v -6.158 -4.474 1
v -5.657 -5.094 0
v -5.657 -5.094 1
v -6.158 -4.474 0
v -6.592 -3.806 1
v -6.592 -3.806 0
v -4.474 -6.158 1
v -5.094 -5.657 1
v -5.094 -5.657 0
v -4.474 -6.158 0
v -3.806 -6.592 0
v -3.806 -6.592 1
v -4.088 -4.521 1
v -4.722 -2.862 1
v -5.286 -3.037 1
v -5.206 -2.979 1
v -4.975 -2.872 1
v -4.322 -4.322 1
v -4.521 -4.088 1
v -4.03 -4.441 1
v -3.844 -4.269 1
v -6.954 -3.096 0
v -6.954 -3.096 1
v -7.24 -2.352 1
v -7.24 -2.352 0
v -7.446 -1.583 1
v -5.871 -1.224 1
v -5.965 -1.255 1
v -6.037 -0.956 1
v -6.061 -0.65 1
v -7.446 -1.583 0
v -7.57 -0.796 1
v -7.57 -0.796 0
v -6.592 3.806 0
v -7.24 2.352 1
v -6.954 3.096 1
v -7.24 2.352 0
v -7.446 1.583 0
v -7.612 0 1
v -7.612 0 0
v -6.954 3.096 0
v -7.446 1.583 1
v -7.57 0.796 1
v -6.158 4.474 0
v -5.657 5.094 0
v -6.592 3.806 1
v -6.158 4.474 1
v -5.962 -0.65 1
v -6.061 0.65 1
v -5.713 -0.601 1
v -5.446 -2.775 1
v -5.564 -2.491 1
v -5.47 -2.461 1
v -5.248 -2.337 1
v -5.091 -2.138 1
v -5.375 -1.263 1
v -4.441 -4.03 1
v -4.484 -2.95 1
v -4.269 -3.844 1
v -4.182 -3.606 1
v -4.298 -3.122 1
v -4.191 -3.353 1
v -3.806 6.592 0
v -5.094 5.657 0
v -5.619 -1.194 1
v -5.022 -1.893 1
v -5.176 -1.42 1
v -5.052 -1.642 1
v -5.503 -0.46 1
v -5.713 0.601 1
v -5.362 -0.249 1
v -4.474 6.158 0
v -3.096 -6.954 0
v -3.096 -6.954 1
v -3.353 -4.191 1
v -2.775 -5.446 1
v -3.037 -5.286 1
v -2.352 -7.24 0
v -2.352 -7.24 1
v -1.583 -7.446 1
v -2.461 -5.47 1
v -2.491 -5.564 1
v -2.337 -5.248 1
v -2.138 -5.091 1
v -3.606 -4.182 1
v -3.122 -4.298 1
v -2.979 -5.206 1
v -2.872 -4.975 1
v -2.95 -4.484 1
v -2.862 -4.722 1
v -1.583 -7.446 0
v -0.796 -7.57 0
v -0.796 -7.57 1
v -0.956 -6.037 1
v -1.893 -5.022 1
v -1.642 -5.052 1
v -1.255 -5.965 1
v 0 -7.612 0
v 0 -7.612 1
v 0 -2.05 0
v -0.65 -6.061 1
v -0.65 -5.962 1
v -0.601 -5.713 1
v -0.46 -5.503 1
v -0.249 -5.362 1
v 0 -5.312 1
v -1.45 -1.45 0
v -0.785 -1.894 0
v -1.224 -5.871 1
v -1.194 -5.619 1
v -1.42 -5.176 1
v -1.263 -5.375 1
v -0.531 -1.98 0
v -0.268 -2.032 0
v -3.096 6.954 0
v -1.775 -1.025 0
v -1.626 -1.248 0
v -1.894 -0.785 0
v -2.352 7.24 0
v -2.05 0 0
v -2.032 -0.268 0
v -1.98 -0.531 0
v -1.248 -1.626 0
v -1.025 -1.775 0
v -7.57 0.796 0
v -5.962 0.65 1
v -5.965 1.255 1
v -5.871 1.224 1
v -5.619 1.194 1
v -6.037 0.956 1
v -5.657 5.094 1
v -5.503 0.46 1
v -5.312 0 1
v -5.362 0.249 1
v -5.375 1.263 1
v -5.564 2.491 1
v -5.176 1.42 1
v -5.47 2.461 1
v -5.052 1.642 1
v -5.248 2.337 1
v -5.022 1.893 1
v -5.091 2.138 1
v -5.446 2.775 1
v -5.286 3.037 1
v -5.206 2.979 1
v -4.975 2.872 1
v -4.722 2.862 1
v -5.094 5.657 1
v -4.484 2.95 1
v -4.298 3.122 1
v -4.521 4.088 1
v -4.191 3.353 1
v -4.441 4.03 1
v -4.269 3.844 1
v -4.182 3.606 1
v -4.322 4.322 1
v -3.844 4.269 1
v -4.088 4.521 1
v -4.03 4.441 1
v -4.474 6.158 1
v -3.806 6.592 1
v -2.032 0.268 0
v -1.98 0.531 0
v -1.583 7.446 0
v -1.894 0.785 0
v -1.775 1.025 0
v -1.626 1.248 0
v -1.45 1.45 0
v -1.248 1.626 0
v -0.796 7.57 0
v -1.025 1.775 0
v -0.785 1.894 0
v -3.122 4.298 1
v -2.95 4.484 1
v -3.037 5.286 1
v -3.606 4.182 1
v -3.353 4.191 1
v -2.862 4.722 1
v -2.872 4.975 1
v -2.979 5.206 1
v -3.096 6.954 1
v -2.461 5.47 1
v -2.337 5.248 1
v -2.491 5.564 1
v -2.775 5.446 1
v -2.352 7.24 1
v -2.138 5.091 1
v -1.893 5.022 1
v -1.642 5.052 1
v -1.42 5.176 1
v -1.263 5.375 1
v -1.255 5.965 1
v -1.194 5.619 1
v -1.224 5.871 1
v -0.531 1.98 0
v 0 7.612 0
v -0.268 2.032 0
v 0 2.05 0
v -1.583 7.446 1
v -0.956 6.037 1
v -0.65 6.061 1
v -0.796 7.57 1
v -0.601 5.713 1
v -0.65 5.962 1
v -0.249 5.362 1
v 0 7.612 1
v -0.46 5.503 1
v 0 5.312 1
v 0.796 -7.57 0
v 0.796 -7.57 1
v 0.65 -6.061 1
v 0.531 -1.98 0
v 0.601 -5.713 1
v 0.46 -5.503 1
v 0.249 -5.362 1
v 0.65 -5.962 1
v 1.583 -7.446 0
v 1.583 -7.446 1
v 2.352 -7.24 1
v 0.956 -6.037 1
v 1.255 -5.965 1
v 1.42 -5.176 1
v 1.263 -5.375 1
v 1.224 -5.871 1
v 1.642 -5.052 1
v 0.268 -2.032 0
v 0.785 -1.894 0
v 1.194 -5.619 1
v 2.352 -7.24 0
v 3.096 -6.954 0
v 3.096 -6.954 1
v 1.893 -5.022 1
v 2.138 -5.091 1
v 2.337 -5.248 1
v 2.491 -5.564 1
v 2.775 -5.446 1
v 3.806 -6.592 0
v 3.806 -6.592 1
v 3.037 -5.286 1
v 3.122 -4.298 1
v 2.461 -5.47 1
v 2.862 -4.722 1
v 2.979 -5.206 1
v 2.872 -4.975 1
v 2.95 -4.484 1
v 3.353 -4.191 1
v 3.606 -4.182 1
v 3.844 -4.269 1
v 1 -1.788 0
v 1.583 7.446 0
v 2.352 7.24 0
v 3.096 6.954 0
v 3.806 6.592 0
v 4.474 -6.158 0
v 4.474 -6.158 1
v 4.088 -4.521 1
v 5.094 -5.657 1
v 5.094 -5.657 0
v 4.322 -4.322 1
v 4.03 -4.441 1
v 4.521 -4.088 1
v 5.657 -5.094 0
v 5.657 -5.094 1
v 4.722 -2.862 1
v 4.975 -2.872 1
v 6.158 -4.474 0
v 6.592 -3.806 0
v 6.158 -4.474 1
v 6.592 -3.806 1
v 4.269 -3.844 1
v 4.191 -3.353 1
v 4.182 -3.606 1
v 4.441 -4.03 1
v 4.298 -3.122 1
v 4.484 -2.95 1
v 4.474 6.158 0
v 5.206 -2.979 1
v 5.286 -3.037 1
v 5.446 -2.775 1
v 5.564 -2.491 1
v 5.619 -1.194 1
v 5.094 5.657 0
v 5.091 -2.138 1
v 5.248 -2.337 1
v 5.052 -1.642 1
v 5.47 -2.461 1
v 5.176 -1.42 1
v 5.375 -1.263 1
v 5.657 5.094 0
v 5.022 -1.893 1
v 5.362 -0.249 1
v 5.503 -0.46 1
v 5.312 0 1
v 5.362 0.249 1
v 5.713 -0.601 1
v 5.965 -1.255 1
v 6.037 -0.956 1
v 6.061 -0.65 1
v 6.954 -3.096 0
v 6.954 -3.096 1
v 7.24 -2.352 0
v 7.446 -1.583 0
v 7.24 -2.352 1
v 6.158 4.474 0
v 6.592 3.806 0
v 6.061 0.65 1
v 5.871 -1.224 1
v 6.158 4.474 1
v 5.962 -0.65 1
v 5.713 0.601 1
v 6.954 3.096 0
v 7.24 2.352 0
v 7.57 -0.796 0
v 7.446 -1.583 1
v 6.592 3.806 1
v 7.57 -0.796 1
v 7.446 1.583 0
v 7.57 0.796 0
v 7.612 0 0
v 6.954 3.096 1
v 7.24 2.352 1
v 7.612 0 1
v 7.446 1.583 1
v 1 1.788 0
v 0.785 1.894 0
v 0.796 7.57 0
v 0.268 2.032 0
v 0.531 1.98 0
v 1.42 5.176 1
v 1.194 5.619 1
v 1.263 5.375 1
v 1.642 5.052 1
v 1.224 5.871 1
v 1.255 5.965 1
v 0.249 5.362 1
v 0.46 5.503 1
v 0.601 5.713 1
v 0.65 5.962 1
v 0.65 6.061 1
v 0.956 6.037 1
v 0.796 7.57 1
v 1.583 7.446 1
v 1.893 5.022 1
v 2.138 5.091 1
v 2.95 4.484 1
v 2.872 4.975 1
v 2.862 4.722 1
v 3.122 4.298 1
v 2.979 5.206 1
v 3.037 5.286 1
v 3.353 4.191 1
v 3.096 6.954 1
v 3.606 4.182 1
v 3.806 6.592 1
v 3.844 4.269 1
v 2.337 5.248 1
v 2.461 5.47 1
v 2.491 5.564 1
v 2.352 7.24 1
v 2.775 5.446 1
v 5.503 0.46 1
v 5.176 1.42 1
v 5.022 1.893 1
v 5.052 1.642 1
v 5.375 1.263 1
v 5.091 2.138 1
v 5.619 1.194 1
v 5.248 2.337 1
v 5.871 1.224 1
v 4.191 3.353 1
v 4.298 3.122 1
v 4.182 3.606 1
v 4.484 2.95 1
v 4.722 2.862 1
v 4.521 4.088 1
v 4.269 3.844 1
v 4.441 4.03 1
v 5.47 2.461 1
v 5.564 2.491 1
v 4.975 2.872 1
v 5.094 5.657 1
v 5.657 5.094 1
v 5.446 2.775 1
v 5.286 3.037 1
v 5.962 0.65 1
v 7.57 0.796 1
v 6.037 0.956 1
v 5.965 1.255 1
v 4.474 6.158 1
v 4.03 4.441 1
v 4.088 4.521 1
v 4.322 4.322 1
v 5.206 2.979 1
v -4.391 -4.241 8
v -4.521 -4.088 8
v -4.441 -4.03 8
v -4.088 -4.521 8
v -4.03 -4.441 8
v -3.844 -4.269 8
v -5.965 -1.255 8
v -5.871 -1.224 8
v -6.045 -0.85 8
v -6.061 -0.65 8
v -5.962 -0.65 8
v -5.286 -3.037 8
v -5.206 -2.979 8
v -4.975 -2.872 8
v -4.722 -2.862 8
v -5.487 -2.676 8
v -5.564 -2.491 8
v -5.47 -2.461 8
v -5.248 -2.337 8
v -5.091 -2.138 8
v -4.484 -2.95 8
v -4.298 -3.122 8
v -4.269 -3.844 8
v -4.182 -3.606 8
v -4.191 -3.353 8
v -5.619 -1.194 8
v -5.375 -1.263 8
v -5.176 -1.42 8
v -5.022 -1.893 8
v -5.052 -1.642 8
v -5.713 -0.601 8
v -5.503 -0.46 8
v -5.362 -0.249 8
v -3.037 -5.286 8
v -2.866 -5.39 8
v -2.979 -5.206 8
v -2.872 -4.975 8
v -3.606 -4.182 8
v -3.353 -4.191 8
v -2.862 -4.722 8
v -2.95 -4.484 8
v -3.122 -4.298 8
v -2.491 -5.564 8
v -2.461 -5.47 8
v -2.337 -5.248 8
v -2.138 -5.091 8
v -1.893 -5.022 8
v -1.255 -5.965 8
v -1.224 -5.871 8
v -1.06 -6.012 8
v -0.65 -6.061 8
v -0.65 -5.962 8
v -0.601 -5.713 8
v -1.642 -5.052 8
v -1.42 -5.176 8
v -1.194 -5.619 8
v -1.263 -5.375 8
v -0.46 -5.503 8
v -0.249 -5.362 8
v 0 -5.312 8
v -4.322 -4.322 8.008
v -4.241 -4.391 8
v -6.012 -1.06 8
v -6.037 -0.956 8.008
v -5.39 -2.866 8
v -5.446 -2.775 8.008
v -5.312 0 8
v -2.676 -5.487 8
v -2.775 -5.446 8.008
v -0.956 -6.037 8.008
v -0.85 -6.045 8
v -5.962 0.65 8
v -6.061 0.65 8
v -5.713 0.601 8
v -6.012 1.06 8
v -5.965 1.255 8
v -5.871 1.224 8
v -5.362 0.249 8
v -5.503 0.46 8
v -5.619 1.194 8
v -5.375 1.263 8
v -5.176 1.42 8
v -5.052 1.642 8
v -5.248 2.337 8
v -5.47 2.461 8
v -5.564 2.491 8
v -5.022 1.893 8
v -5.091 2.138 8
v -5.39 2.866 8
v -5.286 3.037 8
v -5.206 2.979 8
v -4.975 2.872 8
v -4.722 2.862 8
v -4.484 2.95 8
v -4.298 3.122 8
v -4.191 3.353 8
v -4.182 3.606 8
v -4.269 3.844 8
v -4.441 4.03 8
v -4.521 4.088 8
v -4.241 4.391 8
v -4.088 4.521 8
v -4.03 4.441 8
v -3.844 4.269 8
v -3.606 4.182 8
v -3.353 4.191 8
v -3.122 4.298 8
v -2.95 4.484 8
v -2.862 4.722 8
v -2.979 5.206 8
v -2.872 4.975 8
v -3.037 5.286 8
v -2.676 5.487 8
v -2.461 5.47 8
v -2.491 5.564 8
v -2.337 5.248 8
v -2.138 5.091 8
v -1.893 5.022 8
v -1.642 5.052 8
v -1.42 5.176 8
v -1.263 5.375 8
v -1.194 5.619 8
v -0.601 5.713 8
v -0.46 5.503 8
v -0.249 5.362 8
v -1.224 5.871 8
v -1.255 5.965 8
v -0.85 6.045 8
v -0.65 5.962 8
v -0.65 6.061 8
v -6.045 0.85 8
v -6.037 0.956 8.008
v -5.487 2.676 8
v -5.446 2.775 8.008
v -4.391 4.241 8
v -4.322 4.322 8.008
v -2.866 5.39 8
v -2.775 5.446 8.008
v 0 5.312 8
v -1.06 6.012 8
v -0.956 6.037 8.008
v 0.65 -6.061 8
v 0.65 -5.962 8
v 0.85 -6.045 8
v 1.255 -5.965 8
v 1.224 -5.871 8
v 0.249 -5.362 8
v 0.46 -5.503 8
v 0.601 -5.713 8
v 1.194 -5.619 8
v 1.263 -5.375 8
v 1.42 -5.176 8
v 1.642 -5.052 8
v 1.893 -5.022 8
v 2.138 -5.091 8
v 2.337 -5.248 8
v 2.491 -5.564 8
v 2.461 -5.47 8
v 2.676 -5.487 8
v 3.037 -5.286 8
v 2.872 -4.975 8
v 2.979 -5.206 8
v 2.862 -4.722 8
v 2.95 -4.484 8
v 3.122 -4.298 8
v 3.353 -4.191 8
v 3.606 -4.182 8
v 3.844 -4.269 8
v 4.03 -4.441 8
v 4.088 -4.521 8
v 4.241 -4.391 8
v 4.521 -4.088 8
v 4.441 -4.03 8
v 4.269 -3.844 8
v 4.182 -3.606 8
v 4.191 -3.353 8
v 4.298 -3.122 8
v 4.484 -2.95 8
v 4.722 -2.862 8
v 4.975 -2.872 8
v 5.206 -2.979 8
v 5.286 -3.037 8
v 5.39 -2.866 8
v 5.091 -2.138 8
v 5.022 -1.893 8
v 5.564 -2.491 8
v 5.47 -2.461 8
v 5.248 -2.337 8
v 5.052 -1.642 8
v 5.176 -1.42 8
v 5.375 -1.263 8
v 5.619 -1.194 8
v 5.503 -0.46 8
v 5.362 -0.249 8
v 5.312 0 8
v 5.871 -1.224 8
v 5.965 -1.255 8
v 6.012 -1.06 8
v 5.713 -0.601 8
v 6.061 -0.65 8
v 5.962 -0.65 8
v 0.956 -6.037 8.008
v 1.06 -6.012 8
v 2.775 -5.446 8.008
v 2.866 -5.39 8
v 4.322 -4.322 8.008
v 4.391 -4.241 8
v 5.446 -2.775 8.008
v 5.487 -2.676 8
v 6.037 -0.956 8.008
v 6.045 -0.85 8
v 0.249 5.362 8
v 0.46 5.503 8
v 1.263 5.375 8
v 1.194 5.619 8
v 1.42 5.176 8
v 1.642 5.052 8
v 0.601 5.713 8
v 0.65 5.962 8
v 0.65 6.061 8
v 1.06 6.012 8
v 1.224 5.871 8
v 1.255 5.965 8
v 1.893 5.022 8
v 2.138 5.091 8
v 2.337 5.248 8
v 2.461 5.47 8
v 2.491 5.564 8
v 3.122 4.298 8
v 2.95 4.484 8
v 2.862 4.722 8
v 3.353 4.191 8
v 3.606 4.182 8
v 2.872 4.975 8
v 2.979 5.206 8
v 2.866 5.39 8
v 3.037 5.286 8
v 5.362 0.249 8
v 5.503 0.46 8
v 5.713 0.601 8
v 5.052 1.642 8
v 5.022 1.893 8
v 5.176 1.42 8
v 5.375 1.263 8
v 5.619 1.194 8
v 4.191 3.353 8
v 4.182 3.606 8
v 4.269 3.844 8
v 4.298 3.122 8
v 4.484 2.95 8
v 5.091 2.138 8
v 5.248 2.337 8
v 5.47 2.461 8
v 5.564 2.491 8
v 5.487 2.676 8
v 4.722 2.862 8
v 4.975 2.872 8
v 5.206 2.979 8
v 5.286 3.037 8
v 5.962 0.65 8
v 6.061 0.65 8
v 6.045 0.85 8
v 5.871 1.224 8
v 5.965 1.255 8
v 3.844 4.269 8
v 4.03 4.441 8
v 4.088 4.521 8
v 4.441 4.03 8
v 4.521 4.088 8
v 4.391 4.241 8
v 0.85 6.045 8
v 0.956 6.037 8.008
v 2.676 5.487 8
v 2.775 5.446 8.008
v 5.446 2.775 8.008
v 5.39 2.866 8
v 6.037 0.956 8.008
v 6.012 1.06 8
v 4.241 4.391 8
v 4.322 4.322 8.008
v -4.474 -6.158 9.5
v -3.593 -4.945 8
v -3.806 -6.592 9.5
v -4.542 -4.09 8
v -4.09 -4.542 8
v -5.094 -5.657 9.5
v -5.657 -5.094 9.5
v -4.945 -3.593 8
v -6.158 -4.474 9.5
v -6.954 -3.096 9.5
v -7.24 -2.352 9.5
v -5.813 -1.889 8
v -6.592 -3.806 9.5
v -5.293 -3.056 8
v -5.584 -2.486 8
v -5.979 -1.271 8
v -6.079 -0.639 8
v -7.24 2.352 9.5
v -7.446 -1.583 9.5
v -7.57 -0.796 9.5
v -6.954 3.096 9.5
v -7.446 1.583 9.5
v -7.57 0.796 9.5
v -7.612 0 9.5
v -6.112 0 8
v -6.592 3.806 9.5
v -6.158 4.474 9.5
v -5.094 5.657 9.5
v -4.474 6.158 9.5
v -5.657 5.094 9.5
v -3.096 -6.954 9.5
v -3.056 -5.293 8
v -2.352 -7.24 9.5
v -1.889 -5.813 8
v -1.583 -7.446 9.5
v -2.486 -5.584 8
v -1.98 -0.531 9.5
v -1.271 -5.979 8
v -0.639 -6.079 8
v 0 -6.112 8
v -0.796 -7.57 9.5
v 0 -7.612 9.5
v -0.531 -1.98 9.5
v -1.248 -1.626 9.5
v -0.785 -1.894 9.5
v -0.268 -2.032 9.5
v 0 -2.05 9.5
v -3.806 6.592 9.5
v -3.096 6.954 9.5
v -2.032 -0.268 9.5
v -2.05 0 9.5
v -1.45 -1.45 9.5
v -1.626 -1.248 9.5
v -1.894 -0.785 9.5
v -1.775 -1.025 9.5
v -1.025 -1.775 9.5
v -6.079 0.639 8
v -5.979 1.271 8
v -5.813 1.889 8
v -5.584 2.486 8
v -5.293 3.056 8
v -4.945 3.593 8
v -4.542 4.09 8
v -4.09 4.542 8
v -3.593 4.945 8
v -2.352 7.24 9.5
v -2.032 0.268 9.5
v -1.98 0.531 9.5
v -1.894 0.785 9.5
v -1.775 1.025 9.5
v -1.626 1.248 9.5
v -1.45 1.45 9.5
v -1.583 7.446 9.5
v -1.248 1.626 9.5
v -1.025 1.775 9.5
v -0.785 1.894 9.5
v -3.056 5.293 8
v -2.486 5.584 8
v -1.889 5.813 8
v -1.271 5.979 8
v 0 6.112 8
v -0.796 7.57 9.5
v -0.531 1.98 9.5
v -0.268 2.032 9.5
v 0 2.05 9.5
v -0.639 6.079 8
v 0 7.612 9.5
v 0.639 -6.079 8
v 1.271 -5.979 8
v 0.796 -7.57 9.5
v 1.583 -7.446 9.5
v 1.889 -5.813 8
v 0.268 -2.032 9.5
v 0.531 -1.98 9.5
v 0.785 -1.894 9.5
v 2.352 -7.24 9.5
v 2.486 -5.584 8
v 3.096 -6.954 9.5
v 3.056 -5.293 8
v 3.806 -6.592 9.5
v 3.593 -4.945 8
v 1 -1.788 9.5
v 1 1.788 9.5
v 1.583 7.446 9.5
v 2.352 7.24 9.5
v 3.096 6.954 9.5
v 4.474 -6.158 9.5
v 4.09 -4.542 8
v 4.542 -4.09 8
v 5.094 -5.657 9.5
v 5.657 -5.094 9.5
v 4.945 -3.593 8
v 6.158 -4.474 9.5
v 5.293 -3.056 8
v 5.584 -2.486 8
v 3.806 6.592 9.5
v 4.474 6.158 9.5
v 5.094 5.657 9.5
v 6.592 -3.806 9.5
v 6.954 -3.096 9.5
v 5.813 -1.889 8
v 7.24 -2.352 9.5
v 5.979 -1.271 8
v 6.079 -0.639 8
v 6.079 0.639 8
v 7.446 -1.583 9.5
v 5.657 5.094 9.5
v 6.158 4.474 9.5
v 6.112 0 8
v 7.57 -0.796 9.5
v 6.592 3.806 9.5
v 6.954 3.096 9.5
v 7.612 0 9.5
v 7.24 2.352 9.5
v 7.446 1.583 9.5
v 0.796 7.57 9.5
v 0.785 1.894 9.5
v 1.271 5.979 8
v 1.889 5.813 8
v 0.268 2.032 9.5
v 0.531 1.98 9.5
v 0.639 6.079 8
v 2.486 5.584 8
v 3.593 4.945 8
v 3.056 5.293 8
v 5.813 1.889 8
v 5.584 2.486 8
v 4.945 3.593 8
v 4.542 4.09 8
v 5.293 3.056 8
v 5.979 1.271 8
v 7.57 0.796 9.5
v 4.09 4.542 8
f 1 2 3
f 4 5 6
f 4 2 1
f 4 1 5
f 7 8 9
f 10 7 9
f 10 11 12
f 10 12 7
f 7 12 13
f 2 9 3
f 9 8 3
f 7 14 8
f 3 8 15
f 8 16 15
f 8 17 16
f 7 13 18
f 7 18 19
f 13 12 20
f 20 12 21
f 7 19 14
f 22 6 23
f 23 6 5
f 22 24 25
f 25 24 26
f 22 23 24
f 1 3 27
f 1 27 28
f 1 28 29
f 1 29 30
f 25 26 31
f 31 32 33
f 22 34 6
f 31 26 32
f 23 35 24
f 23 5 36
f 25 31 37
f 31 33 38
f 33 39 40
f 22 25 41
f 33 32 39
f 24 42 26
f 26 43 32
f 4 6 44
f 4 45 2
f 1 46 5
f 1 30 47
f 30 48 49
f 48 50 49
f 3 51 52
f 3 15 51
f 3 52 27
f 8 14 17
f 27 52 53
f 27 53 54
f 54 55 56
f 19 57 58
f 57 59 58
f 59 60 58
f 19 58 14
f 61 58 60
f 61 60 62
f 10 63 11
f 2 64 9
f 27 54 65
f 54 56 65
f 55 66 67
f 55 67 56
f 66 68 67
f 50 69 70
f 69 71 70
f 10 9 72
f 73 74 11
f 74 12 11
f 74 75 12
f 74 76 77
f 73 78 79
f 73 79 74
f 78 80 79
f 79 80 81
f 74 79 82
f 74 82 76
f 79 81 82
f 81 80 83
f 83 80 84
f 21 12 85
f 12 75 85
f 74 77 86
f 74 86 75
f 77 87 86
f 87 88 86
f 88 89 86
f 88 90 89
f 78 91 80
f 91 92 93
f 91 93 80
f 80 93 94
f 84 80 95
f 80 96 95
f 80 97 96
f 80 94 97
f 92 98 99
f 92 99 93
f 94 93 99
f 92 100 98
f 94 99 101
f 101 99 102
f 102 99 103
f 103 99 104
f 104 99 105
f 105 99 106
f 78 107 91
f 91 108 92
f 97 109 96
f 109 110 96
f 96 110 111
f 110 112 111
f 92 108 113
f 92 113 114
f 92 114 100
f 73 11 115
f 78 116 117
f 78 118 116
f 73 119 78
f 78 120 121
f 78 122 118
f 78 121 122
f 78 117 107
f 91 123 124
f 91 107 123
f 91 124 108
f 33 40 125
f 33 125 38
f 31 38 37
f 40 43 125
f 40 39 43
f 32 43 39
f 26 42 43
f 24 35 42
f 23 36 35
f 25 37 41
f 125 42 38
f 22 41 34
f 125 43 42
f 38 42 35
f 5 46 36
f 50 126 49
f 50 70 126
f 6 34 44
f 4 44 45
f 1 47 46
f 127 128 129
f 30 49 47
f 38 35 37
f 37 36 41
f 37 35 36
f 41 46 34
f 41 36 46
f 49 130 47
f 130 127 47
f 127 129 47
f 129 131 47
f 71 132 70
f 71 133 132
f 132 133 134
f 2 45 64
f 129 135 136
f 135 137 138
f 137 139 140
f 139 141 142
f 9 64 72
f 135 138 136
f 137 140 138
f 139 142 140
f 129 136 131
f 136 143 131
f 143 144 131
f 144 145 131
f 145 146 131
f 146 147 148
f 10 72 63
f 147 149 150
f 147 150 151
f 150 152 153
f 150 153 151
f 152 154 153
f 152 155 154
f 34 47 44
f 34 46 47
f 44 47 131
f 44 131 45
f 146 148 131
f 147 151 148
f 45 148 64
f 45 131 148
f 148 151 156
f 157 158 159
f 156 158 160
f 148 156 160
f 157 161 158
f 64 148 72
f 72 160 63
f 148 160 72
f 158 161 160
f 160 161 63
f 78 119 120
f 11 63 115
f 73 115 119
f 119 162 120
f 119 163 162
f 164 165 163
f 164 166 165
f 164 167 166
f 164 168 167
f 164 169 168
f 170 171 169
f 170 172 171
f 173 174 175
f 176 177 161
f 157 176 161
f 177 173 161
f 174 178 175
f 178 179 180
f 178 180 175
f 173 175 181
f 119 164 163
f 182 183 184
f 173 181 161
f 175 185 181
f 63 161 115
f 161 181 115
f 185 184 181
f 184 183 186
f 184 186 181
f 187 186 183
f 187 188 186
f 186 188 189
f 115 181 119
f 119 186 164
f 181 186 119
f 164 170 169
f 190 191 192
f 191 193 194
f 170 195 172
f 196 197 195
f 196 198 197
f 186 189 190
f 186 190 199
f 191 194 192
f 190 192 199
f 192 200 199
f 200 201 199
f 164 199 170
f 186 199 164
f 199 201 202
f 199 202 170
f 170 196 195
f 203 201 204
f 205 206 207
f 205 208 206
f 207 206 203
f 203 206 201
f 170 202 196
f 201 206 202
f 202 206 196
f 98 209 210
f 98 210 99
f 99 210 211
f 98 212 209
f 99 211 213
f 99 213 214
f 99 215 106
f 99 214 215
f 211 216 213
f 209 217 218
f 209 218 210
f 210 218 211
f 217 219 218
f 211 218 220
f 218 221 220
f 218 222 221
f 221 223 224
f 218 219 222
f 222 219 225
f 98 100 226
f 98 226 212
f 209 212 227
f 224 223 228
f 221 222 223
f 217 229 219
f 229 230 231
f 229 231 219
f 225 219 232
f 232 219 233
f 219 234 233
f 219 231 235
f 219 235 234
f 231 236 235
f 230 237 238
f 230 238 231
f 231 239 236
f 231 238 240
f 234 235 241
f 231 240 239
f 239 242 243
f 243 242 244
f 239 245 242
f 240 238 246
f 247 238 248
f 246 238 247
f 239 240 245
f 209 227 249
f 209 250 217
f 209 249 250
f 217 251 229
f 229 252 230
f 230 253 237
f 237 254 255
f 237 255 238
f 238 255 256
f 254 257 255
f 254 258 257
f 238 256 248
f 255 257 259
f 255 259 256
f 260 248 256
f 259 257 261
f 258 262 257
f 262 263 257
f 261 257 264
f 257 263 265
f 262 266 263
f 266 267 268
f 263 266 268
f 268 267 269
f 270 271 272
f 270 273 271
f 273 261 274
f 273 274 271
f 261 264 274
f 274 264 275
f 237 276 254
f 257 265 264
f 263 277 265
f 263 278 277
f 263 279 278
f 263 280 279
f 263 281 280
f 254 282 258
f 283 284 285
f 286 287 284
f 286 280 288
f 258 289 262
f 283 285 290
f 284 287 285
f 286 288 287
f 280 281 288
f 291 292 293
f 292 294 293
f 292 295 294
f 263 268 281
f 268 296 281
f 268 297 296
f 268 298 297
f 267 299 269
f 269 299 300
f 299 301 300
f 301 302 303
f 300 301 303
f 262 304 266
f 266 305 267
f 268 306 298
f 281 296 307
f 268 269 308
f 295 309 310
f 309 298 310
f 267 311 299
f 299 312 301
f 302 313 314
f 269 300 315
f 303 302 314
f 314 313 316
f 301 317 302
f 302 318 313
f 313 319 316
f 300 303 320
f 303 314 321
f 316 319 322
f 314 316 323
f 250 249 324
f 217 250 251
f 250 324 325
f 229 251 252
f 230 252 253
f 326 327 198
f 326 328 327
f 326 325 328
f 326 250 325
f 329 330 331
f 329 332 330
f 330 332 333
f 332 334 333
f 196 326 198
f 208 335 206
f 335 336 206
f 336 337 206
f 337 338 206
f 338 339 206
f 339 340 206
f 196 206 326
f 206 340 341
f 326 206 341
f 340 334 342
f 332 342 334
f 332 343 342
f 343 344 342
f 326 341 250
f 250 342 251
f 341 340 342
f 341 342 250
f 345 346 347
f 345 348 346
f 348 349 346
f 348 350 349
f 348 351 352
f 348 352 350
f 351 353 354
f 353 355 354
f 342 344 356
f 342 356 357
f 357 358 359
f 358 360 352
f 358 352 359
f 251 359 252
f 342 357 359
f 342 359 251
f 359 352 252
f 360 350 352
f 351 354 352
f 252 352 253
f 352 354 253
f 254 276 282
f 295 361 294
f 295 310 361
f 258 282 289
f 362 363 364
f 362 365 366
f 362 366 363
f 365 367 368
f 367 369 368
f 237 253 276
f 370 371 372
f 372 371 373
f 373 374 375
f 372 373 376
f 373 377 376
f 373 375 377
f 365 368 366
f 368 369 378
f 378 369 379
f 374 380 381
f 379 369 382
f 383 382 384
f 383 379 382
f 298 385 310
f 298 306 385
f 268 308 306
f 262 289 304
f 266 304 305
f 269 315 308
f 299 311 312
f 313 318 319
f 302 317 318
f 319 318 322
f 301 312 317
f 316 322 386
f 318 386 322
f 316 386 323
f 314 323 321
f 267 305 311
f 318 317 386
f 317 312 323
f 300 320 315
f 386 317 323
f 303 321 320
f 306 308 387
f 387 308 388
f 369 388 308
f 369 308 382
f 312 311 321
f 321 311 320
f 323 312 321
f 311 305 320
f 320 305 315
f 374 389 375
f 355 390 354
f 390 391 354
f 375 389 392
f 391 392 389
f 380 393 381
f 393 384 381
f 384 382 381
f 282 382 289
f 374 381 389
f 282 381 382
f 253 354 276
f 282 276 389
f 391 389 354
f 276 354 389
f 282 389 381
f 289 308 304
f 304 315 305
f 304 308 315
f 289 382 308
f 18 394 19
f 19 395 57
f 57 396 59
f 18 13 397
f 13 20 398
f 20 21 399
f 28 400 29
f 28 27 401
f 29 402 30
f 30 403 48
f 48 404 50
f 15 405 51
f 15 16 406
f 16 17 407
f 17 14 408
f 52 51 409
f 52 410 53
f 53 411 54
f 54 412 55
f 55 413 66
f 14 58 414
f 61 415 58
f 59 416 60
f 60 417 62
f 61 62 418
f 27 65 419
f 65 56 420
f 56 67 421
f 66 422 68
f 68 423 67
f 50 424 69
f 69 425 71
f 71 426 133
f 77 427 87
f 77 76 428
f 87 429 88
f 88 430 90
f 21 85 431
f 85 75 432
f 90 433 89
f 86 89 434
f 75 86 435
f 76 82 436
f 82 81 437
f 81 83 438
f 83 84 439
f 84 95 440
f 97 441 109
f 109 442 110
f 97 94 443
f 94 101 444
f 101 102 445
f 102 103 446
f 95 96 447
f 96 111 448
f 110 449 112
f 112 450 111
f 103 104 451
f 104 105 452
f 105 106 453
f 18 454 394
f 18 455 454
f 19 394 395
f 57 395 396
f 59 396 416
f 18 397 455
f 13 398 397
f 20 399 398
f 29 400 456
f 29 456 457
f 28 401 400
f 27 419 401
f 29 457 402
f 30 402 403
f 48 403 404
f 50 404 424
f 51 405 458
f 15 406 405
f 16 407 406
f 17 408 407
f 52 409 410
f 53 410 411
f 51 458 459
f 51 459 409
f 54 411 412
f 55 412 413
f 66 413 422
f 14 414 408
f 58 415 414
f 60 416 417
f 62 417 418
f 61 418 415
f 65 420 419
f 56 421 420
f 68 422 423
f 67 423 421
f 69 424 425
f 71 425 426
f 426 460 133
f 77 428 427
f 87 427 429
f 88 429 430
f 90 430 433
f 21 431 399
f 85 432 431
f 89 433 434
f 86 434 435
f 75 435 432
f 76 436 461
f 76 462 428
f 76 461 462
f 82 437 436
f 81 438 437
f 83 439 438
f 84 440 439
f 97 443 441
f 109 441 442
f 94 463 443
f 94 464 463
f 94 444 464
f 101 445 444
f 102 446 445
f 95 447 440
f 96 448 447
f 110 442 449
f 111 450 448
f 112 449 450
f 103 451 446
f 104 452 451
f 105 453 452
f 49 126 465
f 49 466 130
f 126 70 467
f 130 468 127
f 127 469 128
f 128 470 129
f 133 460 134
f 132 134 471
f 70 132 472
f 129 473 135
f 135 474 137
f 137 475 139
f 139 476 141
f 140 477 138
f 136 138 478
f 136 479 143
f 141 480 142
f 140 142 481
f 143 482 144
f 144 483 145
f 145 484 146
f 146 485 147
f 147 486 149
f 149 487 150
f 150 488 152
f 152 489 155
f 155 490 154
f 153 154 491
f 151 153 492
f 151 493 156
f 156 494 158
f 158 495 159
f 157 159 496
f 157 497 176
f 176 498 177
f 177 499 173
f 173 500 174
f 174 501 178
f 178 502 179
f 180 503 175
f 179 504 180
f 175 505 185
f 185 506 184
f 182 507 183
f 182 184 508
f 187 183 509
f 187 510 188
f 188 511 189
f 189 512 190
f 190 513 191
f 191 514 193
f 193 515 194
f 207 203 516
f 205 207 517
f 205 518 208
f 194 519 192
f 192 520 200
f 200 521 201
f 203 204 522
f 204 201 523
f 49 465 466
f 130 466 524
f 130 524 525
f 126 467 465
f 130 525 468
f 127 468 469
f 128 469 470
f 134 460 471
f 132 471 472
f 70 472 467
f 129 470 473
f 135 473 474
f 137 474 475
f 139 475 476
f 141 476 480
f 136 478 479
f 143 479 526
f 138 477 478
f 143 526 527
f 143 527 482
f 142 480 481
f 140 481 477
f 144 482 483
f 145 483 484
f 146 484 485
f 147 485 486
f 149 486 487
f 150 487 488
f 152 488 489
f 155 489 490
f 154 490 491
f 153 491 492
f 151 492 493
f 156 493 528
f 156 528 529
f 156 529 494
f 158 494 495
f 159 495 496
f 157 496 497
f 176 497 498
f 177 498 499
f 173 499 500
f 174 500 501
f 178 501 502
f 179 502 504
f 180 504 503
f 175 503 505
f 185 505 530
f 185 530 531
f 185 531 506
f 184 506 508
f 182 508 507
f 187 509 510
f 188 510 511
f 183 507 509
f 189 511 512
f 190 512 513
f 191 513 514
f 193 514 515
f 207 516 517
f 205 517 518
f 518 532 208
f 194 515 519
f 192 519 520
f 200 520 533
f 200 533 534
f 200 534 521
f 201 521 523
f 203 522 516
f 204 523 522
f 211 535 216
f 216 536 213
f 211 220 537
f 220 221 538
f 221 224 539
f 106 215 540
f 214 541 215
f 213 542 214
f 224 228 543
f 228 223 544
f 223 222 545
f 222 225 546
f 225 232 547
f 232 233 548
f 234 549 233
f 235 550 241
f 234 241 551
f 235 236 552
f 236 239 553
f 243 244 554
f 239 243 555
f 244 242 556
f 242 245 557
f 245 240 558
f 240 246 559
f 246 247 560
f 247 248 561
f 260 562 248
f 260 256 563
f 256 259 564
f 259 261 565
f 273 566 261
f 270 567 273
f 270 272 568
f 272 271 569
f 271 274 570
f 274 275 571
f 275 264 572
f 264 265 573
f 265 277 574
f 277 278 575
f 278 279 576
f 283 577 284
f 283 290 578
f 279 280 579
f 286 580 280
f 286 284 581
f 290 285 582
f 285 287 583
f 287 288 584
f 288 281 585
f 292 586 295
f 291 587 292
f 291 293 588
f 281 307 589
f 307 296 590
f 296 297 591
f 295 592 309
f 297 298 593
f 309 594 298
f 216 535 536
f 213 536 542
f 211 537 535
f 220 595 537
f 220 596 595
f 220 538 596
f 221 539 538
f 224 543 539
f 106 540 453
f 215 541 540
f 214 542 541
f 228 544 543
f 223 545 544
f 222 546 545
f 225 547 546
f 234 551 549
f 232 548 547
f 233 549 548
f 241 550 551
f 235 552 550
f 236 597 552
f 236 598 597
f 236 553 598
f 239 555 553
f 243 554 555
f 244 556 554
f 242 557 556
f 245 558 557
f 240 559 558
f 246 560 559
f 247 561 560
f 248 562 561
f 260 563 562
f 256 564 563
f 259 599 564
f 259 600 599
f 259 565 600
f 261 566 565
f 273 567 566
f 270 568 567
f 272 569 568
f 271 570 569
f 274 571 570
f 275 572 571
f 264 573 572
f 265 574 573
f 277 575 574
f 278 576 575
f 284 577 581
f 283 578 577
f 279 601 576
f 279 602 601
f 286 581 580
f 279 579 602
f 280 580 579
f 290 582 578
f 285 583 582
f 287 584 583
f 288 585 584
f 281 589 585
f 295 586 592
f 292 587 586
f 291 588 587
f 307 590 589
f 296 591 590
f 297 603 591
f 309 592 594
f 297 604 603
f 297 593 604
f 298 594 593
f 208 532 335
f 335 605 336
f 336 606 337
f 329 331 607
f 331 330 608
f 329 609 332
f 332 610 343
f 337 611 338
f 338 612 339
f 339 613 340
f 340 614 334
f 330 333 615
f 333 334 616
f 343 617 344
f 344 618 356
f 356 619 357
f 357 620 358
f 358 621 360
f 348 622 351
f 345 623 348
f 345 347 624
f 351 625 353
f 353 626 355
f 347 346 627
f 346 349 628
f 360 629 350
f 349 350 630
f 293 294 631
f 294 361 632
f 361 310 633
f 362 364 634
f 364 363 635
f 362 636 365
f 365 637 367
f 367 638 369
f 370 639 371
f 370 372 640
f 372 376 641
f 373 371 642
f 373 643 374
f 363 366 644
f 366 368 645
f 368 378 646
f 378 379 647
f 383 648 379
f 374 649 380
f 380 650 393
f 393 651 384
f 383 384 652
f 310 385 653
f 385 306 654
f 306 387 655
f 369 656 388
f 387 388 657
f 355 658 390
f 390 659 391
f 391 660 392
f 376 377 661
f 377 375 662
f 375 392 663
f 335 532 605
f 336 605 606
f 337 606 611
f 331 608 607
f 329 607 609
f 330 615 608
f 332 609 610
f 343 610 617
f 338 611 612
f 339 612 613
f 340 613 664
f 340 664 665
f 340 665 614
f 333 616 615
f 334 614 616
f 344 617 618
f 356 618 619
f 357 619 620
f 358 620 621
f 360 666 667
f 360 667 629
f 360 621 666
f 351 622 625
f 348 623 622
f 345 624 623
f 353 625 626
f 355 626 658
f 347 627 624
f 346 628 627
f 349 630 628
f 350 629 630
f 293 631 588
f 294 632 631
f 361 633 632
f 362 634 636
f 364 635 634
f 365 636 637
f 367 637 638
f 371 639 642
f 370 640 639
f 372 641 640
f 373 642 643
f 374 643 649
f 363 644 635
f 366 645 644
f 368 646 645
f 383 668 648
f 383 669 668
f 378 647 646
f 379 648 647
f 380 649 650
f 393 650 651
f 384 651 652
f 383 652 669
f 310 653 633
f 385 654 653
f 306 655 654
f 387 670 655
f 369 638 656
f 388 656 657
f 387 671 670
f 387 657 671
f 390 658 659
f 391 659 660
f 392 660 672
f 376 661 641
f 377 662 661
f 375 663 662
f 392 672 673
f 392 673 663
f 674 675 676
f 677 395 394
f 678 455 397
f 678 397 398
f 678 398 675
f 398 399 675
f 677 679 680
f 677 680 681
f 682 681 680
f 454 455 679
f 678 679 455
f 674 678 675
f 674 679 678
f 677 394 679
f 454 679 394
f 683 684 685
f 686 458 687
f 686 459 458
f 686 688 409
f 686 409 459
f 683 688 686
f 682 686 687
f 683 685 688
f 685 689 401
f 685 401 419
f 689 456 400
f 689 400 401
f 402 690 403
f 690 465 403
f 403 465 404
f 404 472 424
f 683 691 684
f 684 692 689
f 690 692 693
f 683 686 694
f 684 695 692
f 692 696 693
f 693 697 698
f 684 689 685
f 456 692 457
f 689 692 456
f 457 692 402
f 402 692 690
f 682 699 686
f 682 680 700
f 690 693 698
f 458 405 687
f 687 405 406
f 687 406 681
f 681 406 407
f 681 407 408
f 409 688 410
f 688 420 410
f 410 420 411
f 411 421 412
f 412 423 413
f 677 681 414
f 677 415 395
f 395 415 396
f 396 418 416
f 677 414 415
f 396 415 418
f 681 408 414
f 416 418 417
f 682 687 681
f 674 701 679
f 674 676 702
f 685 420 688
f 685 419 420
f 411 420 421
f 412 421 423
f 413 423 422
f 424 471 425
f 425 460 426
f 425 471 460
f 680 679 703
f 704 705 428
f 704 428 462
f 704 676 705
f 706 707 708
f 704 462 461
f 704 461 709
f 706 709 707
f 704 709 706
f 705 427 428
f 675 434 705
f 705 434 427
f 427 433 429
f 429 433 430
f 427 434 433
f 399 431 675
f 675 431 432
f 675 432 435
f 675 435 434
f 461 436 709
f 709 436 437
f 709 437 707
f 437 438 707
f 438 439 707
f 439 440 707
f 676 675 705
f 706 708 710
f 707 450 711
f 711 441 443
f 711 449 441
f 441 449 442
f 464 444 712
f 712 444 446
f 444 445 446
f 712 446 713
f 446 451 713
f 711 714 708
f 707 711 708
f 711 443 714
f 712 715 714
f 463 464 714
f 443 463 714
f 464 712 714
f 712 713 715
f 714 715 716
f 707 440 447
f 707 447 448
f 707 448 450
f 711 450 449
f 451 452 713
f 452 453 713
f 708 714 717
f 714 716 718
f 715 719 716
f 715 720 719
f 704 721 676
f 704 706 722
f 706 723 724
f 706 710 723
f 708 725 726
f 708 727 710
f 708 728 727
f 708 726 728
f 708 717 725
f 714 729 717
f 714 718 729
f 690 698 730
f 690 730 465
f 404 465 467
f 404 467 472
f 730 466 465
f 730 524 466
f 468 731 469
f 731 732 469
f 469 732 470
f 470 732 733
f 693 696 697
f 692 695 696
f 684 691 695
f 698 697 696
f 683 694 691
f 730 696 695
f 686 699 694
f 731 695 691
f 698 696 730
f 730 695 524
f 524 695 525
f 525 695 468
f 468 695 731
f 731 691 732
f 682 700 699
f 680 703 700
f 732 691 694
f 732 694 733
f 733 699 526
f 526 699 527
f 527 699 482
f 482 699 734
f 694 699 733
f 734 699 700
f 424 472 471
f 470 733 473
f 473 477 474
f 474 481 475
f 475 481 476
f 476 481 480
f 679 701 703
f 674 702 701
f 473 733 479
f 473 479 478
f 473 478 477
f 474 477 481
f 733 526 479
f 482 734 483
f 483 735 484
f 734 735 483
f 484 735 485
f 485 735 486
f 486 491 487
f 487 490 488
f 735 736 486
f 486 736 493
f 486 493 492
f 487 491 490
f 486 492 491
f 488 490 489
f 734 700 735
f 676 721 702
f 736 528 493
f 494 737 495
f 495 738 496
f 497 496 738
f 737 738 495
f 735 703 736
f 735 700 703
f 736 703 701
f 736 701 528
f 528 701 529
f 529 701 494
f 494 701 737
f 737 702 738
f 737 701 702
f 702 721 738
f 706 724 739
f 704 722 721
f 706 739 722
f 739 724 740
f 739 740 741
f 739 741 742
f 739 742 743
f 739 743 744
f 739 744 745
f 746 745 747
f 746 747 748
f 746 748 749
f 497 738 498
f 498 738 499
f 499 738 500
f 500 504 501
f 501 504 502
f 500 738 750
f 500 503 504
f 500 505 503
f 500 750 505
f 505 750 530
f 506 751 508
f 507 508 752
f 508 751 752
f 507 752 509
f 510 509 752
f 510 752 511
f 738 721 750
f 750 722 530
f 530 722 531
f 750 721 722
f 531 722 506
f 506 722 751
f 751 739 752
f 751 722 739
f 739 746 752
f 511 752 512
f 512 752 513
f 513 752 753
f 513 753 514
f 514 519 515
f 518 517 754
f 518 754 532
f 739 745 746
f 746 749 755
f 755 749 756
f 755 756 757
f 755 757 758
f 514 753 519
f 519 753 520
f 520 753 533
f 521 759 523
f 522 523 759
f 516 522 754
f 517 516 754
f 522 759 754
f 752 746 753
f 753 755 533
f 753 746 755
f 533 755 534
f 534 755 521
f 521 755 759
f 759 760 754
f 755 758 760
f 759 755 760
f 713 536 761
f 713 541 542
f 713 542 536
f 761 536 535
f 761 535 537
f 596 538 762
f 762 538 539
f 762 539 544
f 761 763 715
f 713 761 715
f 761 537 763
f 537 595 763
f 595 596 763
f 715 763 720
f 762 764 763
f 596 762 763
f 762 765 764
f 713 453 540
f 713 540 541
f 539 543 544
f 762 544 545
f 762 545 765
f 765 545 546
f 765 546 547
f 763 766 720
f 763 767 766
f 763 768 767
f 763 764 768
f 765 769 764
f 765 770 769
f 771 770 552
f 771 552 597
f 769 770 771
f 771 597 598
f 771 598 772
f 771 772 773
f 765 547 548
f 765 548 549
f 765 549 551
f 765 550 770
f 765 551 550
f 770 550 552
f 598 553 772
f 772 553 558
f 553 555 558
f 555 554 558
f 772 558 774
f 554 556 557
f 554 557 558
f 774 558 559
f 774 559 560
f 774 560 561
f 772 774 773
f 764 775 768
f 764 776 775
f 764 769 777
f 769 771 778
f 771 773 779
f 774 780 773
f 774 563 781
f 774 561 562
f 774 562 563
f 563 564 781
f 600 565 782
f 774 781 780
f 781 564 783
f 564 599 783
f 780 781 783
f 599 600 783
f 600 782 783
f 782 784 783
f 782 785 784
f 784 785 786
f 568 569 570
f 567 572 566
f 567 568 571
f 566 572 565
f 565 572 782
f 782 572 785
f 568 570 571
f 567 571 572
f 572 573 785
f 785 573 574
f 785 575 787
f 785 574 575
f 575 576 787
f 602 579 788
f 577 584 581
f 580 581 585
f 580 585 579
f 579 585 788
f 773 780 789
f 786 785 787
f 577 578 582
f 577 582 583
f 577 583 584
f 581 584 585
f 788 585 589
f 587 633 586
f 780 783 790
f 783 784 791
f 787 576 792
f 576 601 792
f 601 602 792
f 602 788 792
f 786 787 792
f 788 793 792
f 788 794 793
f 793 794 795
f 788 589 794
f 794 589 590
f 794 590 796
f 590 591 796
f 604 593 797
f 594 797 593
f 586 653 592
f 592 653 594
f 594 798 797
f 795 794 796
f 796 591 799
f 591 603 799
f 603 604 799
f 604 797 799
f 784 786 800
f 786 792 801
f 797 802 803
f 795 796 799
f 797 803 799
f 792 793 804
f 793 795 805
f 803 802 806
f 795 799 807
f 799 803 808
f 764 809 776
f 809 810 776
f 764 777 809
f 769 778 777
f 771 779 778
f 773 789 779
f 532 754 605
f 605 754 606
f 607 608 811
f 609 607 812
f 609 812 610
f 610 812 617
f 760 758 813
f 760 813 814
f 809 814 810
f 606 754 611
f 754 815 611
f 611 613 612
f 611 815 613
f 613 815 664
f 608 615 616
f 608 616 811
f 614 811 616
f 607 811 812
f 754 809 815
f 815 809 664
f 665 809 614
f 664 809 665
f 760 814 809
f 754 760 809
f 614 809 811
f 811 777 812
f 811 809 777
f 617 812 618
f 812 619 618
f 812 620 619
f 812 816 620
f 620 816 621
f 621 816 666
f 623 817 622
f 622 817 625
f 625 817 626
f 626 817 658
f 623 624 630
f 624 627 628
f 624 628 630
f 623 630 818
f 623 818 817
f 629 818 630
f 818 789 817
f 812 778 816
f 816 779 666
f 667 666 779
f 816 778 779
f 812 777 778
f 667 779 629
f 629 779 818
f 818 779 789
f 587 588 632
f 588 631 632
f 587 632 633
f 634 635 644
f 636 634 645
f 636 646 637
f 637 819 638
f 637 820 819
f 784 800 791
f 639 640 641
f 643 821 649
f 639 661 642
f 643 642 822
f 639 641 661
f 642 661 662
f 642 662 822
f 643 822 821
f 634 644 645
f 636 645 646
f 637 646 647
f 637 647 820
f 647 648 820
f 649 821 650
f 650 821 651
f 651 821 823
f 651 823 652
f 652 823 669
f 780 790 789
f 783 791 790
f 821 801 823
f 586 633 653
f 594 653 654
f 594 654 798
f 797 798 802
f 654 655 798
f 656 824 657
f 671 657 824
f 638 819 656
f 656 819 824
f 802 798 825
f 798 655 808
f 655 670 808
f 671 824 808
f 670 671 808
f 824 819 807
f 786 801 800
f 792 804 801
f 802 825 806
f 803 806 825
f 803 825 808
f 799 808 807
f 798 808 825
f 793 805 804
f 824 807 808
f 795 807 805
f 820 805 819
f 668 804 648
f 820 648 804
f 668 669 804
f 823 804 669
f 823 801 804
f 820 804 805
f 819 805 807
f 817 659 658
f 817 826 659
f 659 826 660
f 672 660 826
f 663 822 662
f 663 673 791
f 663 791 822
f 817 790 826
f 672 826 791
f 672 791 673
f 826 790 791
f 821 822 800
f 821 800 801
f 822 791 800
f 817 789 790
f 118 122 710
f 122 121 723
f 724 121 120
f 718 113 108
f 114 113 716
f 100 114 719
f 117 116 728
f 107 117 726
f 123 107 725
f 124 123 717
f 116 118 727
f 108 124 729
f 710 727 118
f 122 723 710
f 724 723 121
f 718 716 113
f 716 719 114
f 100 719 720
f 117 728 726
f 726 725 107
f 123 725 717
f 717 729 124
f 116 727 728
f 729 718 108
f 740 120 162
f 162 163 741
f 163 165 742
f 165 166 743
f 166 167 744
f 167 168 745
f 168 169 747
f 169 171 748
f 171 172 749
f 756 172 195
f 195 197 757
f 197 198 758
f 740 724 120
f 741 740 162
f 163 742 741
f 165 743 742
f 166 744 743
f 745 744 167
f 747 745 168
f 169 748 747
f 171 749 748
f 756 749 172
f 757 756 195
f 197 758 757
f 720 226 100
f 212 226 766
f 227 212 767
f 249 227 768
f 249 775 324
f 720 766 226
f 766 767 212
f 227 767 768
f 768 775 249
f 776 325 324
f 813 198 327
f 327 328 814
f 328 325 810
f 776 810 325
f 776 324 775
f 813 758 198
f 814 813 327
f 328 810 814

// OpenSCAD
// file: ../lib/hardware.scad
// ============================================================================
// lib/hardware.scad — inserts, bearing pockets, motor patterns, race groove, helpers.
// ============================================================================
include <../config.scad>
eps = 0.01;

// Rounded box from z=0 up, corner radius r in XY.
module rbox(size, r = 3) {
    linear_extrude(height = size[2]) offset(r = r) offset(delta = -r) square([size[0], size[1]]);
}
// Cylinder along +X from x0 to x1 / along +Y / along +Z
module xcyl(d, x0, x1) { translate([x0, 0, 0]) rotate([0, 90, 0]) cylinder(d = d, h = x1 - x0); }
module ycyl(d, y0, y1) { translate([0, y0, 0]) rotate([-90, 0, 0]) cylinder(d = d, h = y1 - y0); }
module zcyl(d, z0, z1) { translate([0, 0, z0]) cylinder(d = d, h = z1 - z0); }

// Heat-set insert hole, axis -Z from z=0 (the face). size: "m3" | "m4" | "m5".
module insert_hole(size = "m3", extra = insert_extra) {
    d = size == "m3" ? m3_insert_d : size == "m4" ? m4_insert_d : m5_insert_d;
    h = size == "m3" ? m3_insert_h : size == "m4" ? m4_insert_h : m5_insert_h;
    pilot = size == "m3" ? 2.6 : size == "m4" ? 3.4 : 4.4;
    translate([0, 0, -h]) cylinder(d = d, h = h + eps);
    translate([0, 0, -h - extra]) cylinder(d = pilot, h = extra + eps);
    translate([0, 0, -0.6]) cylinder(d1 = d, d2 = d + 1.2, h = 0.6 + eps);   // lead-in chamfer
}
// Through hole with a counterbore for the head, axis Z, face at z=0, part below.
module cbore(d, head_d, head_h, through = 30) {
    translate([0, 0, -head_h]) cylinder(d = head_d, h = head_h + eps);
    translate([0, 0, -through]) cylinder(d = d, h = through + eps);
}
// Slot (stadium) along a direction vector dir (2D), length l, width w, extruded through t (z 0..t)
module slot(w, l, t, dir = [1, 0]) {
    a = atan2(dir[1], dir[0]);
    rotate(a) hull() { translate([-l / 2, 0, -eps]) cylinder(d = w, h = t + 2 * eps); translate([l / 2, 0, -eps]) cylinder(d = w, h = t + 2 * eps); }
}

// 608 pocket open on +Z (z=0 is the open face), with a lip hole below for the stub.
module bearing_pocket(b = b608, lip_hole = undef) {
    od = b[1] + fit_bearing;
    lh = lip_hole == undef ? b[0] + 1.5 : lip_hole;
    translate([0, 0, -b[2]]) cylinder(d = od, h = b[2] + eps);
    translate([0, 0, -50]) cylinder(d = lh, h = 100);
}

// NEMA 17 face cut along Z through thickness t (z 0..t); slot_l > 0 slots the bolt holes along slot_dir.
module nema17_cut(t, slot_l = 0, slot_dir = [0, 1], boss_d = motor_boss_d + fit_hole) {
    for (sx = [-1, 1], sy = [-1, 1]) translate([sx * motor_bolt_pitch / 2, sy * motor_bolt_pitch / 2, 0])
        if (slot_l > 0) slot(motor_bolt_d, slot_l, t, slot_dir); else translate([0, 0, -eps]) cylinder(d = motor_bolt_d, h = t + 2 * eps);
    translate([0, 0, -eps]) cylinder(d = boss_d, h = t + 2 * eps);
}
// Preview NEMA 17: face at z=0, shaft +Z, body below.
module nema17_body() {
    color("silver") translate([-motor_w / 2, -motor_w / 2, -motor_l]) cube([motor_w, motor_w, motor_l]);
    color("gray") cylinder(d = motor_boss_d - 0.3, h = motor_boss_h);
    color("gray") cylinder(d = motor_shaft_d, h = motor_shaft_l);
}
// D-shaft bore along +Z from z=0 to depth.
module d_bore(depth, d = motor_shaft_d + 0.25, flat = motor_shaft_flat + 0.15) {
    translate([0, 0, -eps]) intersection() {
        cylinder(d = d, h = depth + 2 * eps);
        translate([-d / 2, -d / 2 + (d - flat), 0]) cube([d, d, depth + 2 * eps]);
    }
}

// 28BYJ-48 face cut through thickness t (z 0..t): shaft/boss hole at the origin, body centre offset
// along +Y by ffm_shaft_off, ears along X through the body centre.
module ffm_cut(t) {
    translate([0, 0, -eps]) cylinder(d = ffm_boss_d + fit_hole, h = t + 2 * eps);
    for (s = [-1, 1]) translate([s * ffm_ear_pitch / 2, ffm_shaft_off, 0]) insert_hole("m4", extra = 0);
}
// Preview 28BYJ-48: face at z=0, shaft +Z, body below (offset +Y).
module ffm_body() {
    color("steelblue") translate([0, ffm_shaft_off, -ffm_body_l]) cylinder(d = ffm_body_d, h = ffm_body_l);
    color("steelblue") translate([0, ffm_shaft_off, -1]) hull() for (s = [-1, 1]) translate([s * ffm_ear_pitch / 2, 0, 0]) cylinder(d = ffm_ear_w, h = 1);
    color("gray") cylinder(d = ffm_boss_d, h = ffm_boss_h);
    color("gray") cylinder(d = ffm_shaft_d, h = ffm_shaft_l);
}
module ffm_d_bore(depth) { d_bore(depth, d = ffm_shaft_d + 0.25, flat = ffm_shaft_flat + 0.15); }

// 35 mm PM geared stepper (belt drive). Preview: flange face at z=0, shaft +Z (centred), can below, ears on X,
// wire box on the can side next to the +X ear, toward +Y.
module pm_body() {
    color("steelblue") translate([0, 0, -pm_body_l]) cylinder(d = pm_body_d, h = pm_body_l);
    color("steelblue") translate([0, 0, -pm_flange_t]) hull() for (s = [-1, 1]) translate([s * pm_ear_pitch / 2, 0, 0]) cylinder(d = pm_ear_w, h = pm_flange_t);
    color("gray") cylinder(d = pm_shaft_d, h = pm_shaft_l);
    color("dimgray") cylinder(d = pm_boss_d, h = pm_boss_h);
    color("whitesmoke") translate([0, 0, -pm_flange_t - pm_box_l]) linear_extrude(height = pm_box_l) pm_box_2d();
}
// Wire box footprint in the motor's XY (grown by `grow`): between the can and pm_box_h off it, pm_box_w wide.
module pm_box_2d(grow = 0, out = 0) intersection() {
    circle(r = pm_body_d / 2 + pm_box_h + grow + out, $fn = 96);
    translate([0, pm_box_y0 - grow]) square([pm_body_d, pm_box_w + 2 * grow]);
}
// Printed GT2 pulley envelope (preview), from the motor flange face.
module pm_pulley() color("silver") difference() {
    translate([0, 0, pm_pulley_gap]) cylinder(d = pm_pulley_lip_d, h = pm_pulley_w);
    translate([0, 0, -1]) cylinder(d = pm_shaft_d + 0.2, h = pm_pulley_gap + pm_pulley_w + 2);
}
// Toothed belt band, axis Z from z=0: flat flange (print-bed side), N-groove rim, 45 deg flange of radial lip `lip`.
module belt_band(N, lip = ff_lip) {
    rt = belt_pr(N) - belt_pld;
    cylinder(r = rt + lip, h = ff_flange_t, $fn = max(60, 2 * N));
    translate([0, 0, ff_flange_t - eps]) linear_extrude(height = ff_tooth_w + 2 * eps, convexity = 10) belt_rim_2d(N);
    translate([0, 0, ff_flange_t + ff_tooth_w]) cylinder(r1 = rt, r2 = rt + lip, h = lip, $fn = max(60, 2 * N));
}
// 2D toothed rim of a printed belt pulley or ring: N grooves, round-bottomed, width ff_groove_w, depth ff_groove_d.
module belt_rim_2d(N) {
    rt = belt_pr(N) - belt_pld;
    difference() {
        circle(r = rt, $fn = N * 2);
        for (i = [0 : N - 1]) rotate(i * 360 / N) translate([rt, 0]) hull() {
            translate([-(ff_groove_d - ff_groove_w / 2), 0]) circle(d = ff_groove_w, $fn = 16);
            translate([0.5, 0]) square([1, ff_groove_w], center = true);
        }
    }
}
// Open belt loop (preview / clearance): land only, belt_land thick just outside the tooth tips, around a ring of
// pitch radius R at the origin and a pulley of pitch radius r at distance C along +X.
// The 0.2 mm gap keeps faceted circles from registering as overlap with the ring and pulley previews.
module belt_loop_2d(R, r, C) difference() {
    hull() { circle(r = R - belt_pld + 0.2 + belt_land, $fn = 360); translate([C, 0]) circle(r = r - belt_pld + 0.2 + belt_land, $fn = 48); }
    hull() { circle(r = R - belt_pld + 0.2, $fn = 360); translate([C, 0]) circle(r = r - belt_pld + 0.2, $fn = 48); }
}

// 90-degree V race groove cutting tool, axis Z, in a face at z=face_z, apex below it by `depth`.
module race_groove(r, depth = groove_d, face_z = 0, clearance = 0.1) {
    w = depth + clearance;
    rotate_extrude($fn = 360)
        polygon([[r - w - eps, face_z + eps], [r + w + eps, face_z + eps], [r, face_z - depth - clearance * sqrt(2)]]);
}
// Preview balls on a race, centred at z.
module race_balls(r, z) { color("silver") for (i = [0 : n_balls - 1]) rotate(i * 360 / n_balls) translate([r, 0, z]) sphere(d = ball_d, $fn = 24); }
// main file
// pulley_tb35.scad — 20T GT2 pulley (6 mm belt) for the 35 mm PM geared stepper (TB35-4-10.5): 4 mm shaft with a
// flat (3 mm across the flat). Prints as modelled: flat flange on the bed, 45 deg flange up; the 45 deg flange's
// face goes toward the motor. D bore through: push it on flat to flat with two layers of paper between it and the
// boss round the shaft (so it can't rub), pull the paper, a drop of CA on the flat.
include <../lib/hardware.scad>
module pulley_tb35() difference() {
    belt_band(pm_pulley_N, pm_lip);
    translate([0, 0, -1]) linear_extrude(height = pm_pulley_w + 2) d_bore_2d();
}
module d_bore_2d() {
    r = (pm_shaft_d + pm_bore_fit) / 2;
    flat = pm_shaft_flat + pm_bore_fit / 2 - r;     // flat's distance from the centre
    intersection() { circle(r = r, $fn = 48); translate([-r, -r]) square([r + flat, 2 * r]); }
}
pulley_tb35();
